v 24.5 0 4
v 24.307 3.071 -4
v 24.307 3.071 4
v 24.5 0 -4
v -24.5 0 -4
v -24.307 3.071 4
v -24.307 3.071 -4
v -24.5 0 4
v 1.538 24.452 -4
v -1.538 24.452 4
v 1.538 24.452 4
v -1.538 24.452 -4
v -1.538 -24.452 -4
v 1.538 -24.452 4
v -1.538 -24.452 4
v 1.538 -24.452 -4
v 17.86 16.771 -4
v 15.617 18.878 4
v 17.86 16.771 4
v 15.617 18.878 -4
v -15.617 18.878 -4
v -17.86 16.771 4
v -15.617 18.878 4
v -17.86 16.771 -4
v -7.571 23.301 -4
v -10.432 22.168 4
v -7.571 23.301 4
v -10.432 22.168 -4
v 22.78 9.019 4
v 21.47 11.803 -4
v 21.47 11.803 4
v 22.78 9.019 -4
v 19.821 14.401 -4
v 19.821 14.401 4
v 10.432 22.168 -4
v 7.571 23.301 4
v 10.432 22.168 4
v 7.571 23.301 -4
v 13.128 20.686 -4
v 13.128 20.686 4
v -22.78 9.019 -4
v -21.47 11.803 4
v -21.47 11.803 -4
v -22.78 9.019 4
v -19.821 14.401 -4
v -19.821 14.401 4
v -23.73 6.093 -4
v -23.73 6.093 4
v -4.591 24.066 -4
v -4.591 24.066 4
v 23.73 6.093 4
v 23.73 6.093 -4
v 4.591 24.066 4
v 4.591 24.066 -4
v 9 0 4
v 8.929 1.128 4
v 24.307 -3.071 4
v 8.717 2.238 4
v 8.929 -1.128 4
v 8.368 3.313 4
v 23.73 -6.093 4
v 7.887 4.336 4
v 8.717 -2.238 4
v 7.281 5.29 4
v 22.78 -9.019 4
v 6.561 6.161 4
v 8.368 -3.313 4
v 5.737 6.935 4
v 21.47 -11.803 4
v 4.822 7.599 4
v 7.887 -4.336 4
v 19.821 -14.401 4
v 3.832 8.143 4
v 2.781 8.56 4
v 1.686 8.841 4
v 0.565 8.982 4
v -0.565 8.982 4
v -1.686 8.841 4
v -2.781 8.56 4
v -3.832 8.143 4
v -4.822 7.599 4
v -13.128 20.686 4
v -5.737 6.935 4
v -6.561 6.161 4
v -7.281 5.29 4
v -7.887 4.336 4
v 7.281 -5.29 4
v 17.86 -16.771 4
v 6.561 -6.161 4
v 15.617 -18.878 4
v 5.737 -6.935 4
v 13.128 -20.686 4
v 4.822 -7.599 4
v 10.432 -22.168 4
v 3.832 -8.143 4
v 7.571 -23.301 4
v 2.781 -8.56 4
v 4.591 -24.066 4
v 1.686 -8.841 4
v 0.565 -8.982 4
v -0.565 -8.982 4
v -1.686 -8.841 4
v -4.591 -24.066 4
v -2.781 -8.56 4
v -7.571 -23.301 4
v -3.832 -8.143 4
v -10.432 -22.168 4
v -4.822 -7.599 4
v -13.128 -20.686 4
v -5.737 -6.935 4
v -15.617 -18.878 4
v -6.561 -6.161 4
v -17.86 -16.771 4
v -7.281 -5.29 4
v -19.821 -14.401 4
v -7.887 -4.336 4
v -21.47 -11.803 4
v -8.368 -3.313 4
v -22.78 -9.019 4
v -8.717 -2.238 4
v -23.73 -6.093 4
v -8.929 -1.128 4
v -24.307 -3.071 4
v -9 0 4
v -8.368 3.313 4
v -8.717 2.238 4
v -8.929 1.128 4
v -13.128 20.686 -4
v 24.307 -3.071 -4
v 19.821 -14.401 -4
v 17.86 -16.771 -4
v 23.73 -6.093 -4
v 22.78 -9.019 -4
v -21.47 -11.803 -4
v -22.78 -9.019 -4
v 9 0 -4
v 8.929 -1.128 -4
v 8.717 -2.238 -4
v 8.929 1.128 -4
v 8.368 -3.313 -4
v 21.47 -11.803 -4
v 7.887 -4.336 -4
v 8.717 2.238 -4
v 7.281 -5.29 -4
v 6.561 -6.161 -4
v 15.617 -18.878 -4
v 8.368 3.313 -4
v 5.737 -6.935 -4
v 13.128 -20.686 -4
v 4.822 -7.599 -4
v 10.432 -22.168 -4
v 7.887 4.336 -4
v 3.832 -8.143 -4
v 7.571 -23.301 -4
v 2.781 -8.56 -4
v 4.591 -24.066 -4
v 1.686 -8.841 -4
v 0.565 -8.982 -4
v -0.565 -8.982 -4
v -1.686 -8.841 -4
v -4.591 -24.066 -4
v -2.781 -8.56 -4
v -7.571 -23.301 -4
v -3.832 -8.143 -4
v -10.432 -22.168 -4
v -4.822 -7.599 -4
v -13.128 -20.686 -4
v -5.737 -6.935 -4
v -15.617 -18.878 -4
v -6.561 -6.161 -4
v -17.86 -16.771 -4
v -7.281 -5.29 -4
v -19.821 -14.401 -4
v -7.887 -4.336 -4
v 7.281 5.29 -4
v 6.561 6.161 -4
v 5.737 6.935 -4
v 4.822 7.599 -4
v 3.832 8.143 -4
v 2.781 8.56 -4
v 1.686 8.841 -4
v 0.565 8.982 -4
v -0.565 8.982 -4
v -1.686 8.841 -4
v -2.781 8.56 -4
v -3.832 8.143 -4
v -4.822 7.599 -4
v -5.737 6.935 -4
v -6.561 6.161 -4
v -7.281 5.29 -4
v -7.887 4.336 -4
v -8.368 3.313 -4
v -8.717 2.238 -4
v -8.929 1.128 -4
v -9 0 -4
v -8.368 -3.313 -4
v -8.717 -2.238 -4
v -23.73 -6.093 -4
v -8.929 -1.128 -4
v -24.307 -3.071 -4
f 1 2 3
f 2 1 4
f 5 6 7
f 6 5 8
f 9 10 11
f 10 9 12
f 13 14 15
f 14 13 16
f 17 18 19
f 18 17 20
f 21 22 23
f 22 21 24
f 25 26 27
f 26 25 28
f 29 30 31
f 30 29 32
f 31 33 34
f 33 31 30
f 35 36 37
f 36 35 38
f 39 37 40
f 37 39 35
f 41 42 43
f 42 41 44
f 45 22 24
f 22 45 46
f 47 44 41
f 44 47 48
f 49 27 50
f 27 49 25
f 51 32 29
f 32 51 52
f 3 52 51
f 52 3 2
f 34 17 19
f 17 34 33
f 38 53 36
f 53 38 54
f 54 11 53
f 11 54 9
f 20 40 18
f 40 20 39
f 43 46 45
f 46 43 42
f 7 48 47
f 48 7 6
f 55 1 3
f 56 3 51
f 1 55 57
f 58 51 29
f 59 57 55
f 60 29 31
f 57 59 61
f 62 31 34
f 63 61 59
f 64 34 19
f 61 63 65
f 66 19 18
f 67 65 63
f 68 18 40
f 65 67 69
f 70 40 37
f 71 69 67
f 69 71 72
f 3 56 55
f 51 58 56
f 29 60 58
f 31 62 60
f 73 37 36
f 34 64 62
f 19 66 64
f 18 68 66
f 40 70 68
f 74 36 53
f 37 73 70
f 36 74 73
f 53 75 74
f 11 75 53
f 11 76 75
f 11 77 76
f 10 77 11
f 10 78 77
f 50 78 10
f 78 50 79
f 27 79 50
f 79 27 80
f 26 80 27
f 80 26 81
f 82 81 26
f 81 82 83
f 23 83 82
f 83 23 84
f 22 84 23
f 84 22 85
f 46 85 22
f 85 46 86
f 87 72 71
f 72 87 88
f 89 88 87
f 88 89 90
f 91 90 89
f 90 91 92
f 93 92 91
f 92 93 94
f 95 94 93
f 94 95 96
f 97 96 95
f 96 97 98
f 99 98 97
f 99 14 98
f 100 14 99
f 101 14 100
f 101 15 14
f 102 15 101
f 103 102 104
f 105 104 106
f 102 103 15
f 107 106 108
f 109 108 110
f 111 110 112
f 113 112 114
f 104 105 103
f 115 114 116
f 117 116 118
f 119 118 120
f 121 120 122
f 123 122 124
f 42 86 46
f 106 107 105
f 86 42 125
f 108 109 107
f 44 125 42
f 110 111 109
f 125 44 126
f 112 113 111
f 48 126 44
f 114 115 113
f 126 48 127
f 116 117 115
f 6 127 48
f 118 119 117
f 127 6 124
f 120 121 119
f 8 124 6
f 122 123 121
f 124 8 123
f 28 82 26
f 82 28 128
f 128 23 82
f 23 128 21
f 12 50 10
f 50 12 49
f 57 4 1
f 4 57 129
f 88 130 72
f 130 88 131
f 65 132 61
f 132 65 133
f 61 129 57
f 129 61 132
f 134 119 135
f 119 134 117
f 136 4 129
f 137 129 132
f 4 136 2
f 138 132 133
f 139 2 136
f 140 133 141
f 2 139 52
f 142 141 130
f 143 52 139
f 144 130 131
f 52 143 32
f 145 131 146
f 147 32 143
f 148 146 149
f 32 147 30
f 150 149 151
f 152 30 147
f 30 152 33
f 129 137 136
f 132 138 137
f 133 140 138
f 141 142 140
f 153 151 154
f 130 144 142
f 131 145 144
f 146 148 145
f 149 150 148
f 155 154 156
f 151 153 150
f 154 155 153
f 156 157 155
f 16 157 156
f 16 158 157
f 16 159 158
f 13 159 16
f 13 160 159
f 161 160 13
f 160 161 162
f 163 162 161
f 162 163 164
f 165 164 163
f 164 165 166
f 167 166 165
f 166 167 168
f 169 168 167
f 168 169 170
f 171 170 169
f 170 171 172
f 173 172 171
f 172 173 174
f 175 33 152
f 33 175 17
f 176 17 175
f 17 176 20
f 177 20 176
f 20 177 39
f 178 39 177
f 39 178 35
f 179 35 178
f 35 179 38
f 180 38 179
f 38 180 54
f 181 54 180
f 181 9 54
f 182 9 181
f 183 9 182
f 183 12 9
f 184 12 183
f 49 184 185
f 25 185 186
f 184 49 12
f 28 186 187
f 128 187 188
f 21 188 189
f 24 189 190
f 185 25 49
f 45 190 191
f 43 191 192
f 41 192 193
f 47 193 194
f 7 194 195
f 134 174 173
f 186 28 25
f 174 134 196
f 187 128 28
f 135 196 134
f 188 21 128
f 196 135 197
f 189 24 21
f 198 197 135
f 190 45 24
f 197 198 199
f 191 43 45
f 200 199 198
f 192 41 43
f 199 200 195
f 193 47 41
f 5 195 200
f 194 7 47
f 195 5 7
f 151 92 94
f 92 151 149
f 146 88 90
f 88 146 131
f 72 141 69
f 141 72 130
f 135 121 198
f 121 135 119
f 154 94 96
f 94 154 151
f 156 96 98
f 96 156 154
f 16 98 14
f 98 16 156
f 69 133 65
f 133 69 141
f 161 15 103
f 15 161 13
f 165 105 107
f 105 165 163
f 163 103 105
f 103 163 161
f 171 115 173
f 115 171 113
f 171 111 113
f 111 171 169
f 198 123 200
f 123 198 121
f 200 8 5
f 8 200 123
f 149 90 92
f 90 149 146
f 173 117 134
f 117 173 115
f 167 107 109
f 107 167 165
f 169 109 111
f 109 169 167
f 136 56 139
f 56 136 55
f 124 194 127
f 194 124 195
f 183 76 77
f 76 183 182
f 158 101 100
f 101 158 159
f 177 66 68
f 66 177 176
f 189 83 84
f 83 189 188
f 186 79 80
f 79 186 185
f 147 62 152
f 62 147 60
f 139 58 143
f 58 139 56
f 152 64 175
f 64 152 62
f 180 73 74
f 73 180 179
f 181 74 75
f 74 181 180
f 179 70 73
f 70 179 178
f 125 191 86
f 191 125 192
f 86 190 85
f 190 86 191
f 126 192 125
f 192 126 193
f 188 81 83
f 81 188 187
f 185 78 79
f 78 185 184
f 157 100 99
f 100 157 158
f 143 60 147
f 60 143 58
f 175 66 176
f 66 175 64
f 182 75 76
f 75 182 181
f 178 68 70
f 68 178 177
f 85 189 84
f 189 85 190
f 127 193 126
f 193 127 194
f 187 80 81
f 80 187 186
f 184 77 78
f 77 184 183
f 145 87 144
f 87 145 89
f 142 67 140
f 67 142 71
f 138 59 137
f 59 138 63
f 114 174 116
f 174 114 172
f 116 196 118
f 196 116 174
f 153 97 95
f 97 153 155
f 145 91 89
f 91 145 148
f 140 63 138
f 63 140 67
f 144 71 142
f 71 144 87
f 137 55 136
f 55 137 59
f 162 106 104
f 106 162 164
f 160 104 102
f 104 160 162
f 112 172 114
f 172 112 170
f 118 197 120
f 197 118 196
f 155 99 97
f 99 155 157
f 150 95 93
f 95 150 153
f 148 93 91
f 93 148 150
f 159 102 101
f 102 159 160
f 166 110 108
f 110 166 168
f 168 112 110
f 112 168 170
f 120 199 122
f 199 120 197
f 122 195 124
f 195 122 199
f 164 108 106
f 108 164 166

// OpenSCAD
$fn = 50;


difference() {
	union() {
		translate(v = [0, 0, -4.0000000000]) {
			cylinder(h = 8, r = 24.5000000000);
		}
	}
	union() {
		translate(v = [0, 0, -100.0000000000]) {
			cylinder(h = 200, r = 9);
		}
	}
}
